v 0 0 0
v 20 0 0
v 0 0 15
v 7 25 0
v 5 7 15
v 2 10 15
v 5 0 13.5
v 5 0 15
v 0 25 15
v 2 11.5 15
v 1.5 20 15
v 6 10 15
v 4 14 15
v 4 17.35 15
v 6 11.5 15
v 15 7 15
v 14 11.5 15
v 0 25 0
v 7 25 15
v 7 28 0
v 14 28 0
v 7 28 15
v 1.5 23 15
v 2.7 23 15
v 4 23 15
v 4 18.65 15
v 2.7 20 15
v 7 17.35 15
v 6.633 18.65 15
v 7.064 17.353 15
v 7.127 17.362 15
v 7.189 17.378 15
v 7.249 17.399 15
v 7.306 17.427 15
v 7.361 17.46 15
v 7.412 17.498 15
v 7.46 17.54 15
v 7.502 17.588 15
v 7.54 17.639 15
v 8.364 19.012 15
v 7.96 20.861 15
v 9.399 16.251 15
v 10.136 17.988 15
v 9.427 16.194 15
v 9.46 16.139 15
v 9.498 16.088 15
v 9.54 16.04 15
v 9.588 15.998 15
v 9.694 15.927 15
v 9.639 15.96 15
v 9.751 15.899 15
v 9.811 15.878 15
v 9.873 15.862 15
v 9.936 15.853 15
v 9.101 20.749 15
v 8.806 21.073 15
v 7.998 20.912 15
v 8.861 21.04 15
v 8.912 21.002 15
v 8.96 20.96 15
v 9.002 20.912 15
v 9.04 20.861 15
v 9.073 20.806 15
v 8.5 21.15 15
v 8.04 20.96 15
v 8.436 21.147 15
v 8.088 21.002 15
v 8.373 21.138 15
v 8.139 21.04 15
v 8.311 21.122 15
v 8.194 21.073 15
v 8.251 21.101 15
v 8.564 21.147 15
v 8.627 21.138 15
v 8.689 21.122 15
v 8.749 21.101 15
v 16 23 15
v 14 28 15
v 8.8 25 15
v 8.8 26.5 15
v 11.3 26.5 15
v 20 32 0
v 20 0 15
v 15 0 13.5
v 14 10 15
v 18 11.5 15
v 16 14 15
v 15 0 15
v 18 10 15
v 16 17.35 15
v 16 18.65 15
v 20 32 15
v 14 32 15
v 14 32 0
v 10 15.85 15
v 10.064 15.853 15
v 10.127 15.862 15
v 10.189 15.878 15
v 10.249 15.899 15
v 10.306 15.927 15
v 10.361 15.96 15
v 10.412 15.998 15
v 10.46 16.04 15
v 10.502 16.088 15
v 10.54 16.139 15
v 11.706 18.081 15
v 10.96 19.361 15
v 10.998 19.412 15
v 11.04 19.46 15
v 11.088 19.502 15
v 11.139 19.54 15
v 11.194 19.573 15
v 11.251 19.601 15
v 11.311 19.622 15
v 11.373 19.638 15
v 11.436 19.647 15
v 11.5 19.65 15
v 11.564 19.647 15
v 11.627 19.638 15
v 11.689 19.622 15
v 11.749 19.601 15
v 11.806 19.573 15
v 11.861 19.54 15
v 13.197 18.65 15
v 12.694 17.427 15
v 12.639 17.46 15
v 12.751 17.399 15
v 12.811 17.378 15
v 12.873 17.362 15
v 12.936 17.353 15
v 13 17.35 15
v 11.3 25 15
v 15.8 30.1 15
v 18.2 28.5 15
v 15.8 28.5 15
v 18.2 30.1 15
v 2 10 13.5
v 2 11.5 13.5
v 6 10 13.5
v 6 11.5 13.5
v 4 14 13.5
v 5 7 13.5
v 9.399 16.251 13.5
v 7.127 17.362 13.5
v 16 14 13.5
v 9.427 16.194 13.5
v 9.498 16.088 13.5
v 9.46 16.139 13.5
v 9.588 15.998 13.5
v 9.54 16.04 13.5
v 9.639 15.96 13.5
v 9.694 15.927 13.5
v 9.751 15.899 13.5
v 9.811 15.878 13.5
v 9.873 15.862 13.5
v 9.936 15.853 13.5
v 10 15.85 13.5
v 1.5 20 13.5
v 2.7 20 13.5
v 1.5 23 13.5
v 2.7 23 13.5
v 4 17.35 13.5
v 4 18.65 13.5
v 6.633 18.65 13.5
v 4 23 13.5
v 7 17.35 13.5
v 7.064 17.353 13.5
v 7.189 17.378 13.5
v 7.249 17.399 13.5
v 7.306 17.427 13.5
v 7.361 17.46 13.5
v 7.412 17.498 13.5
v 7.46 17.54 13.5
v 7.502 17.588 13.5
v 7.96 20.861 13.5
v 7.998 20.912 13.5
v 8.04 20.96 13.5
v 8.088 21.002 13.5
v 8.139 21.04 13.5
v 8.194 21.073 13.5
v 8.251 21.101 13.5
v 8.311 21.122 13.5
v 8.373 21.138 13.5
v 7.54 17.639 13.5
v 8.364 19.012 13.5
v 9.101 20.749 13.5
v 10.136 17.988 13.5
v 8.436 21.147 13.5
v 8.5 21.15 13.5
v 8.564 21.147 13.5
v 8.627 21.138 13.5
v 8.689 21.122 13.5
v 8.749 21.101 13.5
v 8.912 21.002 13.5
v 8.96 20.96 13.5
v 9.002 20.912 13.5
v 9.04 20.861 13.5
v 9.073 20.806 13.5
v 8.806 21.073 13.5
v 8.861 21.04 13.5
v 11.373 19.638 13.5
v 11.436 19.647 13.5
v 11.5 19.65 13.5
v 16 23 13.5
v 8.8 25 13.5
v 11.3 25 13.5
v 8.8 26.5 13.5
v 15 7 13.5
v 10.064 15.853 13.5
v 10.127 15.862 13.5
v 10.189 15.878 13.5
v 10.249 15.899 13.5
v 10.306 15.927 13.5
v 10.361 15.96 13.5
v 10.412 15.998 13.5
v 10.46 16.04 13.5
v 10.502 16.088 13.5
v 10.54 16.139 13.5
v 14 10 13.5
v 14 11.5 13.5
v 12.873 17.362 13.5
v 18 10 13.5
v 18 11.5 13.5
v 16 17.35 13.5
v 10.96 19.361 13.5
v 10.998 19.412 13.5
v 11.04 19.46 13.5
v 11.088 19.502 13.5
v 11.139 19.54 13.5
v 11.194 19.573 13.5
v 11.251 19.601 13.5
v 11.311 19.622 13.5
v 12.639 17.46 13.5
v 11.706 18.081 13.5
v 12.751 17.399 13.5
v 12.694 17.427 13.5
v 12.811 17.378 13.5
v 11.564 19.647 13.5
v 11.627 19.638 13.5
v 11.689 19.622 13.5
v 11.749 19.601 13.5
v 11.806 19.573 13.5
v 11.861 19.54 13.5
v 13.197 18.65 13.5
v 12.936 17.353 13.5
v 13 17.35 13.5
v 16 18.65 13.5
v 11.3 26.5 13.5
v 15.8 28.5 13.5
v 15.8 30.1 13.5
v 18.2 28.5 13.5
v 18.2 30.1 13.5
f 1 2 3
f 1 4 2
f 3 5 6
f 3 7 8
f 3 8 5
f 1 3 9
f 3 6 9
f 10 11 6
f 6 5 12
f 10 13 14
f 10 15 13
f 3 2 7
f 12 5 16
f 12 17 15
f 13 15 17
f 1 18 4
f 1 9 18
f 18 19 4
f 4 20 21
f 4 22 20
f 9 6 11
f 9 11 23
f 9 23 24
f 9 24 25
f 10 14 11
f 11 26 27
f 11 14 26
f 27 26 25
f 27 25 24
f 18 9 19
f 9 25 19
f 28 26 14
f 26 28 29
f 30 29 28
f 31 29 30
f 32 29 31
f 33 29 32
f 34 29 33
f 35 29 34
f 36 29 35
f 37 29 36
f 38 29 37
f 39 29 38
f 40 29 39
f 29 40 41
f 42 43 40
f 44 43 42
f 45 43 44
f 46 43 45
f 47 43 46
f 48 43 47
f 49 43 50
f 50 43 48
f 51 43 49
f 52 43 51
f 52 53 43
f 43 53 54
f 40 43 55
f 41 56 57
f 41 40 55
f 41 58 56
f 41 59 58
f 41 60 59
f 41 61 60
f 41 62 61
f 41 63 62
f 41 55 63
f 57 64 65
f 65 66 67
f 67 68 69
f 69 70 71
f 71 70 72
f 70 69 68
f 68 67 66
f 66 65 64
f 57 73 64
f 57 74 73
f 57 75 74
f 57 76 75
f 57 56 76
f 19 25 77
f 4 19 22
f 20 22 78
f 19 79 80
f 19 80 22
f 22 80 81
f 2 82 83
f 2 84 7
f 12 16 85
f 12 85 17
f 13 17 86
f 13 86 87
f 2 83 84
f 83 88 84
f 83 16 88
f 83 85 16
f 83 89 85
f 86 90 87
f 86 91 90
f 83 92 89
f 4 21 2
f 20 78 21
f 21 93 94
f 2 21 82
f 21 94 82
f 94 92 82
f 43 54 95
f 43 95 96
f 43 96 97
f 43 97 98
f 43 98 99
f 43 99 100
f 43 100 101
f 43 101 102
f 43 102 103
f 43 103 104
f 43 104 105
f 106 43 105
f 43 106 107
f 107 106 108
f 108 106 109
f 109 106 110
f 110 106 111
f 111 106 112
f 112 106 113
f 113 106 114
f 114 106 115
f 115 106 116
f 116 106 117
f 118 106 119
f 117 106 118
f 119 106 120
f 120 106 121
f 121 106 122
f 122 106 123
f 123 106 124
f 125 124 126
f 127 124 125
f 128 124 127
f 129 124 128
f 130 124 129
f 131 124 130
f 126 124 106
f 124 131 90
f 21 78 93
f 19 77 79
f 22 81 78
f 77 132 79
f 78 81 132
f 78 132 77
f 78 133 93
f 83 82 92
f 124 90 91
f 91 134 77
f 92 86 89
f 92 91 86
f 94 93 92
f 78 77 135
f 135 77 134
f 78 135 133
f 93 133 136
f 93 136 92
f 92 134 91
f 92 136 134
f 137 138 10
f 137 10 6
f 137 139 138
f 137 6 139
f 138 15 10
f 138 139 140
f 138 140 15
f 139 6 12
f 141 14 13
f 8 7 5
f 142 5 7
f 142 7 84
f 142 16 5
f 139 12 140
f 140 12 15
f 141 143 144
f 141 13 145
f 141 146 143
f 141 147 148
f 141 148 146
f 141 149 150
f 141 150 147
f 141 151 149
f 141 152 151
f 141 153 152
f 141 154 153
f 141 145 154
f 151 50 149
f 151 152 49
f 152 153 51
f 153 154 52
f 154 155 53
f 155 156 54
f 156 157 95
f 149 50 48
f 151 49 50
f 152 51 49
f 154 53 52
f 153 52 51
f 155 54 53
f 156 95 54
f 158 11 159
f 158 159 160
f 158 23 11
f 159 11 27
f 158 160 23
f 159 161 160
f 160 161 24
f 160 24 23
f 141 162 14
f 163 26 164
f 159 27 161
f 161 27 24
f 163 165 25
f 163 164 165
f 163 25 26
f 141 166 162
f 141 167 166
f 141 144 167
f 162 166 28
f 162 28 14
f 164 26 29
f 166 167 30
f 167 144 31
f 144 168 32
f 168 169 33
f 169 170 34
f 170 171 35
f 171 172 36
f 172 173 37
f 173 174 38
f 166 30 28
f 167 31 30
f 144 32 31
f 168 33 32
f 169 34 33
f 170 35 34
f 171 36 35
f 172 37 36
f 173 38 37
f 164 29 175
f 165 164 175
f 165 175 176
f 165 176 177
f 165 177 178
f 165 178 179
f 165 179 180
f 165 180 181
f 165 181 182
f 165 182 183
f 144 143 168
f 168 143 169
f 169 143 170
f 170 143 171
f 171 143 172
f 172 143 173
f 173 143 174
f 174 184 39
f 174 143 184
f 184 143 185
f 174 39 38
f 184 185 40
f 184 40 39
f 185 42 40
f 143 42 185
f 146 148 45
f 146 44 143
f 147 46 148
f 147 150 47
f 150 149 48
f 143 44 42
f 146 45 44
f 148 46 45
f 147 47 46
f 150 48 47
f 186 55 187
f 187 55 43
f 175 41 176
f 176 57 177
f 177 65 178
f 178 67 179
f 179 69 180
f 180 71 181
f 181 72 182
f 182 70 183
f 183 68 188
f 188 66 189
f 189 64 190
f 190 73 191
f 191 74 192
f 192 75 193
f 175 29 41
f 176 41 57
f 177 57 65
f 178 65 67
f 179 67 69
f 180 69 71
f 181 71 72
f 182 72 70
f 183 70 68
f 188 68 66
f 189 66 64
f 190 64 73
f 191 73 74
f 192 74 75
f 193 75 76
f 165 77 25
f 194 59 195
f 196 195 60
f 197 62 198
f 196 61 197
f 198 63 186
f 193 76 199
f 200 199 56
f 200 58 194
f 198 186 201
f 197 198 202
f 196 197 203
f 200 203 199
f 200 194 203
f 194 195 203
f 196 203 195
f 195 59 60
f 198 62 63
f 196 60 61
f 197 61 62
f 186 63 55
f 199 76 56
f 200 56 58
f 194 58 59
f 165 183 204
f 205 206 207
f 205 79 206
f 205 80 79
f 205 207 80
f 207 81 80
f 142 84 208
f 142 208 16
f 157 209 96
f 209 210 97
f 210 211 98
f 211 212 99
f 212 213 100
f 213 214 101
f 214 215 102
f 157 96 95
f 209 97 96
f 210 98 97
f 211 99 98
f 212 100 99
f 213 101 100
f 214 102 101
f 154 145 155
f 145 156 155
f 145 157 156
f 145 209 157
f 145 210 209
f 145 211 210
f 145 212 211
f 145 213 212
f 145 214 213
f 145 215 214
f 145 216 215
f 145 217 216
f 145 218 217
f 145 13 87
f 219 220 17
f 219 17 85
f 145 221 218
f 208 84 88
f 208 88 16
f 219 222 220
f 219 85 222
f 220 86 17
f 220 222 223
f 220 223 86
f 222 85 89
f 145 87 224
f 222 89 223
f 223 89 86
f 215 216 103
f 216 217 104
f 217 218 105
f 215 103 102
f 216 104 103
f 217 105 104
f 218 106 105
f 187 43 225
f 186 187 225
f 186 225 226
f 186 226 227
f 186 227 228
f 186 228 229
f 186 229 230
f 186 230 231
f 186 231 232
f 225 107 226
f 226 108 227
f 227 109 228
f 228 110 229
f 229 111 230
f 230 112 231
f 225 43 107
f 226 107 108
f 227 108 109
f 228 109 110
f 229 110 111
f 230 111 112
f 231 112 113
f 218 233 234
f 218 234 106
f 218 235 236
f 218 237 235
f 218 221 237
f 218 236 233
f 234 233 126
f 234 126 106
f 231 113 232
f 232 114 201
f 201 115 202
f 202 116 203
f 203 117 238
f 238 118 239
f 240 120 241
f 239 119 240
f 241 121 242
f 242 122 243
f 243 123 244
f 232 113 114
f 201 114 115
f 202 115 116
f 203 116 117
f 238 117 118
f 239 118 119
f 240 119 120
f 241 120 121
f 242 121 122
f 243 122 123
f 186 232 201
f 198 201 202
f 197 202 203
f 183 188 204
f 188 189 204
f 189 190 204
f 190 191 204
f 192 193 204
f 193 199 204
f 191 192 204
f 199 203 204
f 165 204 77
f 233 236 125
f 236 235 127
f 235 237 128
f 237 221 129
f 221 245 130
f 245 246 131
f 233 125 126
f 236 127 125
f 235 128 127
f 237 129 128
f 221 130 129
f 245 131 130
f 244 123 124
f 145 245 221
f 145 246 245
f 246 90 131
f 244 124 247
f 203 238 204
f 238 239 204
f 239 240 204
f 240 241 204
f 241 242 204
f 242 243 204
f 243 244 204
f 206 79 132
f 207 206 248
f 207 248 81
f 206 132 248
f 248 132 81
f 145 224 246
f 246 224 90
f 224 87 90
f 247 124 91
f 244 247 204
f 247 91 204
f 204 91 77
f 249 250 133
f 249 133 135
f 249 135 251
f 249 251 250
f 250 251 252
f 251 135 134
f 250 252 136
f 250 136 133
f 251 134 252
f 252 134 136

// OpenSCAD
// Facade game piece in mm: X width, Y height, Z depth.
// Place Z=0 flat on the build plate; all recessed details are 1.5 mm deep.
$fn=64;
module rect(x,y,w,h){translate([x,y]) square([w,h]);}
module disk(x,y,r){translate([x,y]) circle(r=r);}
module line(a,b,w=1.5){hull(){translate(a) circle(d=w);translate(b) circle(d=w);}}
module path(points,w=1.5){for(i=[0:len(points)-2]) line(points[i],points[i+1],w);}
module cross_icon(x,y,size=6,bar=1.8){union(){rect(x-size/2,y-bar/2,size,bar);rect(x-bar/2,y-size/2,bar,size);}}
module tank(x,y,w,h){union(){rect(x,y,w,h-w/2);disk(x+w/2,y+h-w/2,w/2);}}
module ring(x,y,r,w=1.3){difference(){disk(x,y,r);disk(x,y,r-w);}}

module silhouette(){
union(){rect(0,0,20,25);rect(7,25,13,3);rect(14,28,6,4);}
}
module facade_recesses(){union(){
difference(){rect(4,14,12,9);path([[3.8,18],[7,18],[8.5,20.5],[10,16.5],[11.5,19],[13,18],[16.2,18]],1.3);}
rect(5,0,10,7);
rect(1.5,25-5,1.2,3);rect(8.8,25,2.5,1.5);rect(15.8,28.5,2.4,1.6);
rect(2,10,4,1.5);rect(14,10,4,1.5);
}}
difference(){
 linear_extrude(height=15) silhouette();
 translate([0,0,13.5]) linear_extrude(height=2) facade_recesses();
}
